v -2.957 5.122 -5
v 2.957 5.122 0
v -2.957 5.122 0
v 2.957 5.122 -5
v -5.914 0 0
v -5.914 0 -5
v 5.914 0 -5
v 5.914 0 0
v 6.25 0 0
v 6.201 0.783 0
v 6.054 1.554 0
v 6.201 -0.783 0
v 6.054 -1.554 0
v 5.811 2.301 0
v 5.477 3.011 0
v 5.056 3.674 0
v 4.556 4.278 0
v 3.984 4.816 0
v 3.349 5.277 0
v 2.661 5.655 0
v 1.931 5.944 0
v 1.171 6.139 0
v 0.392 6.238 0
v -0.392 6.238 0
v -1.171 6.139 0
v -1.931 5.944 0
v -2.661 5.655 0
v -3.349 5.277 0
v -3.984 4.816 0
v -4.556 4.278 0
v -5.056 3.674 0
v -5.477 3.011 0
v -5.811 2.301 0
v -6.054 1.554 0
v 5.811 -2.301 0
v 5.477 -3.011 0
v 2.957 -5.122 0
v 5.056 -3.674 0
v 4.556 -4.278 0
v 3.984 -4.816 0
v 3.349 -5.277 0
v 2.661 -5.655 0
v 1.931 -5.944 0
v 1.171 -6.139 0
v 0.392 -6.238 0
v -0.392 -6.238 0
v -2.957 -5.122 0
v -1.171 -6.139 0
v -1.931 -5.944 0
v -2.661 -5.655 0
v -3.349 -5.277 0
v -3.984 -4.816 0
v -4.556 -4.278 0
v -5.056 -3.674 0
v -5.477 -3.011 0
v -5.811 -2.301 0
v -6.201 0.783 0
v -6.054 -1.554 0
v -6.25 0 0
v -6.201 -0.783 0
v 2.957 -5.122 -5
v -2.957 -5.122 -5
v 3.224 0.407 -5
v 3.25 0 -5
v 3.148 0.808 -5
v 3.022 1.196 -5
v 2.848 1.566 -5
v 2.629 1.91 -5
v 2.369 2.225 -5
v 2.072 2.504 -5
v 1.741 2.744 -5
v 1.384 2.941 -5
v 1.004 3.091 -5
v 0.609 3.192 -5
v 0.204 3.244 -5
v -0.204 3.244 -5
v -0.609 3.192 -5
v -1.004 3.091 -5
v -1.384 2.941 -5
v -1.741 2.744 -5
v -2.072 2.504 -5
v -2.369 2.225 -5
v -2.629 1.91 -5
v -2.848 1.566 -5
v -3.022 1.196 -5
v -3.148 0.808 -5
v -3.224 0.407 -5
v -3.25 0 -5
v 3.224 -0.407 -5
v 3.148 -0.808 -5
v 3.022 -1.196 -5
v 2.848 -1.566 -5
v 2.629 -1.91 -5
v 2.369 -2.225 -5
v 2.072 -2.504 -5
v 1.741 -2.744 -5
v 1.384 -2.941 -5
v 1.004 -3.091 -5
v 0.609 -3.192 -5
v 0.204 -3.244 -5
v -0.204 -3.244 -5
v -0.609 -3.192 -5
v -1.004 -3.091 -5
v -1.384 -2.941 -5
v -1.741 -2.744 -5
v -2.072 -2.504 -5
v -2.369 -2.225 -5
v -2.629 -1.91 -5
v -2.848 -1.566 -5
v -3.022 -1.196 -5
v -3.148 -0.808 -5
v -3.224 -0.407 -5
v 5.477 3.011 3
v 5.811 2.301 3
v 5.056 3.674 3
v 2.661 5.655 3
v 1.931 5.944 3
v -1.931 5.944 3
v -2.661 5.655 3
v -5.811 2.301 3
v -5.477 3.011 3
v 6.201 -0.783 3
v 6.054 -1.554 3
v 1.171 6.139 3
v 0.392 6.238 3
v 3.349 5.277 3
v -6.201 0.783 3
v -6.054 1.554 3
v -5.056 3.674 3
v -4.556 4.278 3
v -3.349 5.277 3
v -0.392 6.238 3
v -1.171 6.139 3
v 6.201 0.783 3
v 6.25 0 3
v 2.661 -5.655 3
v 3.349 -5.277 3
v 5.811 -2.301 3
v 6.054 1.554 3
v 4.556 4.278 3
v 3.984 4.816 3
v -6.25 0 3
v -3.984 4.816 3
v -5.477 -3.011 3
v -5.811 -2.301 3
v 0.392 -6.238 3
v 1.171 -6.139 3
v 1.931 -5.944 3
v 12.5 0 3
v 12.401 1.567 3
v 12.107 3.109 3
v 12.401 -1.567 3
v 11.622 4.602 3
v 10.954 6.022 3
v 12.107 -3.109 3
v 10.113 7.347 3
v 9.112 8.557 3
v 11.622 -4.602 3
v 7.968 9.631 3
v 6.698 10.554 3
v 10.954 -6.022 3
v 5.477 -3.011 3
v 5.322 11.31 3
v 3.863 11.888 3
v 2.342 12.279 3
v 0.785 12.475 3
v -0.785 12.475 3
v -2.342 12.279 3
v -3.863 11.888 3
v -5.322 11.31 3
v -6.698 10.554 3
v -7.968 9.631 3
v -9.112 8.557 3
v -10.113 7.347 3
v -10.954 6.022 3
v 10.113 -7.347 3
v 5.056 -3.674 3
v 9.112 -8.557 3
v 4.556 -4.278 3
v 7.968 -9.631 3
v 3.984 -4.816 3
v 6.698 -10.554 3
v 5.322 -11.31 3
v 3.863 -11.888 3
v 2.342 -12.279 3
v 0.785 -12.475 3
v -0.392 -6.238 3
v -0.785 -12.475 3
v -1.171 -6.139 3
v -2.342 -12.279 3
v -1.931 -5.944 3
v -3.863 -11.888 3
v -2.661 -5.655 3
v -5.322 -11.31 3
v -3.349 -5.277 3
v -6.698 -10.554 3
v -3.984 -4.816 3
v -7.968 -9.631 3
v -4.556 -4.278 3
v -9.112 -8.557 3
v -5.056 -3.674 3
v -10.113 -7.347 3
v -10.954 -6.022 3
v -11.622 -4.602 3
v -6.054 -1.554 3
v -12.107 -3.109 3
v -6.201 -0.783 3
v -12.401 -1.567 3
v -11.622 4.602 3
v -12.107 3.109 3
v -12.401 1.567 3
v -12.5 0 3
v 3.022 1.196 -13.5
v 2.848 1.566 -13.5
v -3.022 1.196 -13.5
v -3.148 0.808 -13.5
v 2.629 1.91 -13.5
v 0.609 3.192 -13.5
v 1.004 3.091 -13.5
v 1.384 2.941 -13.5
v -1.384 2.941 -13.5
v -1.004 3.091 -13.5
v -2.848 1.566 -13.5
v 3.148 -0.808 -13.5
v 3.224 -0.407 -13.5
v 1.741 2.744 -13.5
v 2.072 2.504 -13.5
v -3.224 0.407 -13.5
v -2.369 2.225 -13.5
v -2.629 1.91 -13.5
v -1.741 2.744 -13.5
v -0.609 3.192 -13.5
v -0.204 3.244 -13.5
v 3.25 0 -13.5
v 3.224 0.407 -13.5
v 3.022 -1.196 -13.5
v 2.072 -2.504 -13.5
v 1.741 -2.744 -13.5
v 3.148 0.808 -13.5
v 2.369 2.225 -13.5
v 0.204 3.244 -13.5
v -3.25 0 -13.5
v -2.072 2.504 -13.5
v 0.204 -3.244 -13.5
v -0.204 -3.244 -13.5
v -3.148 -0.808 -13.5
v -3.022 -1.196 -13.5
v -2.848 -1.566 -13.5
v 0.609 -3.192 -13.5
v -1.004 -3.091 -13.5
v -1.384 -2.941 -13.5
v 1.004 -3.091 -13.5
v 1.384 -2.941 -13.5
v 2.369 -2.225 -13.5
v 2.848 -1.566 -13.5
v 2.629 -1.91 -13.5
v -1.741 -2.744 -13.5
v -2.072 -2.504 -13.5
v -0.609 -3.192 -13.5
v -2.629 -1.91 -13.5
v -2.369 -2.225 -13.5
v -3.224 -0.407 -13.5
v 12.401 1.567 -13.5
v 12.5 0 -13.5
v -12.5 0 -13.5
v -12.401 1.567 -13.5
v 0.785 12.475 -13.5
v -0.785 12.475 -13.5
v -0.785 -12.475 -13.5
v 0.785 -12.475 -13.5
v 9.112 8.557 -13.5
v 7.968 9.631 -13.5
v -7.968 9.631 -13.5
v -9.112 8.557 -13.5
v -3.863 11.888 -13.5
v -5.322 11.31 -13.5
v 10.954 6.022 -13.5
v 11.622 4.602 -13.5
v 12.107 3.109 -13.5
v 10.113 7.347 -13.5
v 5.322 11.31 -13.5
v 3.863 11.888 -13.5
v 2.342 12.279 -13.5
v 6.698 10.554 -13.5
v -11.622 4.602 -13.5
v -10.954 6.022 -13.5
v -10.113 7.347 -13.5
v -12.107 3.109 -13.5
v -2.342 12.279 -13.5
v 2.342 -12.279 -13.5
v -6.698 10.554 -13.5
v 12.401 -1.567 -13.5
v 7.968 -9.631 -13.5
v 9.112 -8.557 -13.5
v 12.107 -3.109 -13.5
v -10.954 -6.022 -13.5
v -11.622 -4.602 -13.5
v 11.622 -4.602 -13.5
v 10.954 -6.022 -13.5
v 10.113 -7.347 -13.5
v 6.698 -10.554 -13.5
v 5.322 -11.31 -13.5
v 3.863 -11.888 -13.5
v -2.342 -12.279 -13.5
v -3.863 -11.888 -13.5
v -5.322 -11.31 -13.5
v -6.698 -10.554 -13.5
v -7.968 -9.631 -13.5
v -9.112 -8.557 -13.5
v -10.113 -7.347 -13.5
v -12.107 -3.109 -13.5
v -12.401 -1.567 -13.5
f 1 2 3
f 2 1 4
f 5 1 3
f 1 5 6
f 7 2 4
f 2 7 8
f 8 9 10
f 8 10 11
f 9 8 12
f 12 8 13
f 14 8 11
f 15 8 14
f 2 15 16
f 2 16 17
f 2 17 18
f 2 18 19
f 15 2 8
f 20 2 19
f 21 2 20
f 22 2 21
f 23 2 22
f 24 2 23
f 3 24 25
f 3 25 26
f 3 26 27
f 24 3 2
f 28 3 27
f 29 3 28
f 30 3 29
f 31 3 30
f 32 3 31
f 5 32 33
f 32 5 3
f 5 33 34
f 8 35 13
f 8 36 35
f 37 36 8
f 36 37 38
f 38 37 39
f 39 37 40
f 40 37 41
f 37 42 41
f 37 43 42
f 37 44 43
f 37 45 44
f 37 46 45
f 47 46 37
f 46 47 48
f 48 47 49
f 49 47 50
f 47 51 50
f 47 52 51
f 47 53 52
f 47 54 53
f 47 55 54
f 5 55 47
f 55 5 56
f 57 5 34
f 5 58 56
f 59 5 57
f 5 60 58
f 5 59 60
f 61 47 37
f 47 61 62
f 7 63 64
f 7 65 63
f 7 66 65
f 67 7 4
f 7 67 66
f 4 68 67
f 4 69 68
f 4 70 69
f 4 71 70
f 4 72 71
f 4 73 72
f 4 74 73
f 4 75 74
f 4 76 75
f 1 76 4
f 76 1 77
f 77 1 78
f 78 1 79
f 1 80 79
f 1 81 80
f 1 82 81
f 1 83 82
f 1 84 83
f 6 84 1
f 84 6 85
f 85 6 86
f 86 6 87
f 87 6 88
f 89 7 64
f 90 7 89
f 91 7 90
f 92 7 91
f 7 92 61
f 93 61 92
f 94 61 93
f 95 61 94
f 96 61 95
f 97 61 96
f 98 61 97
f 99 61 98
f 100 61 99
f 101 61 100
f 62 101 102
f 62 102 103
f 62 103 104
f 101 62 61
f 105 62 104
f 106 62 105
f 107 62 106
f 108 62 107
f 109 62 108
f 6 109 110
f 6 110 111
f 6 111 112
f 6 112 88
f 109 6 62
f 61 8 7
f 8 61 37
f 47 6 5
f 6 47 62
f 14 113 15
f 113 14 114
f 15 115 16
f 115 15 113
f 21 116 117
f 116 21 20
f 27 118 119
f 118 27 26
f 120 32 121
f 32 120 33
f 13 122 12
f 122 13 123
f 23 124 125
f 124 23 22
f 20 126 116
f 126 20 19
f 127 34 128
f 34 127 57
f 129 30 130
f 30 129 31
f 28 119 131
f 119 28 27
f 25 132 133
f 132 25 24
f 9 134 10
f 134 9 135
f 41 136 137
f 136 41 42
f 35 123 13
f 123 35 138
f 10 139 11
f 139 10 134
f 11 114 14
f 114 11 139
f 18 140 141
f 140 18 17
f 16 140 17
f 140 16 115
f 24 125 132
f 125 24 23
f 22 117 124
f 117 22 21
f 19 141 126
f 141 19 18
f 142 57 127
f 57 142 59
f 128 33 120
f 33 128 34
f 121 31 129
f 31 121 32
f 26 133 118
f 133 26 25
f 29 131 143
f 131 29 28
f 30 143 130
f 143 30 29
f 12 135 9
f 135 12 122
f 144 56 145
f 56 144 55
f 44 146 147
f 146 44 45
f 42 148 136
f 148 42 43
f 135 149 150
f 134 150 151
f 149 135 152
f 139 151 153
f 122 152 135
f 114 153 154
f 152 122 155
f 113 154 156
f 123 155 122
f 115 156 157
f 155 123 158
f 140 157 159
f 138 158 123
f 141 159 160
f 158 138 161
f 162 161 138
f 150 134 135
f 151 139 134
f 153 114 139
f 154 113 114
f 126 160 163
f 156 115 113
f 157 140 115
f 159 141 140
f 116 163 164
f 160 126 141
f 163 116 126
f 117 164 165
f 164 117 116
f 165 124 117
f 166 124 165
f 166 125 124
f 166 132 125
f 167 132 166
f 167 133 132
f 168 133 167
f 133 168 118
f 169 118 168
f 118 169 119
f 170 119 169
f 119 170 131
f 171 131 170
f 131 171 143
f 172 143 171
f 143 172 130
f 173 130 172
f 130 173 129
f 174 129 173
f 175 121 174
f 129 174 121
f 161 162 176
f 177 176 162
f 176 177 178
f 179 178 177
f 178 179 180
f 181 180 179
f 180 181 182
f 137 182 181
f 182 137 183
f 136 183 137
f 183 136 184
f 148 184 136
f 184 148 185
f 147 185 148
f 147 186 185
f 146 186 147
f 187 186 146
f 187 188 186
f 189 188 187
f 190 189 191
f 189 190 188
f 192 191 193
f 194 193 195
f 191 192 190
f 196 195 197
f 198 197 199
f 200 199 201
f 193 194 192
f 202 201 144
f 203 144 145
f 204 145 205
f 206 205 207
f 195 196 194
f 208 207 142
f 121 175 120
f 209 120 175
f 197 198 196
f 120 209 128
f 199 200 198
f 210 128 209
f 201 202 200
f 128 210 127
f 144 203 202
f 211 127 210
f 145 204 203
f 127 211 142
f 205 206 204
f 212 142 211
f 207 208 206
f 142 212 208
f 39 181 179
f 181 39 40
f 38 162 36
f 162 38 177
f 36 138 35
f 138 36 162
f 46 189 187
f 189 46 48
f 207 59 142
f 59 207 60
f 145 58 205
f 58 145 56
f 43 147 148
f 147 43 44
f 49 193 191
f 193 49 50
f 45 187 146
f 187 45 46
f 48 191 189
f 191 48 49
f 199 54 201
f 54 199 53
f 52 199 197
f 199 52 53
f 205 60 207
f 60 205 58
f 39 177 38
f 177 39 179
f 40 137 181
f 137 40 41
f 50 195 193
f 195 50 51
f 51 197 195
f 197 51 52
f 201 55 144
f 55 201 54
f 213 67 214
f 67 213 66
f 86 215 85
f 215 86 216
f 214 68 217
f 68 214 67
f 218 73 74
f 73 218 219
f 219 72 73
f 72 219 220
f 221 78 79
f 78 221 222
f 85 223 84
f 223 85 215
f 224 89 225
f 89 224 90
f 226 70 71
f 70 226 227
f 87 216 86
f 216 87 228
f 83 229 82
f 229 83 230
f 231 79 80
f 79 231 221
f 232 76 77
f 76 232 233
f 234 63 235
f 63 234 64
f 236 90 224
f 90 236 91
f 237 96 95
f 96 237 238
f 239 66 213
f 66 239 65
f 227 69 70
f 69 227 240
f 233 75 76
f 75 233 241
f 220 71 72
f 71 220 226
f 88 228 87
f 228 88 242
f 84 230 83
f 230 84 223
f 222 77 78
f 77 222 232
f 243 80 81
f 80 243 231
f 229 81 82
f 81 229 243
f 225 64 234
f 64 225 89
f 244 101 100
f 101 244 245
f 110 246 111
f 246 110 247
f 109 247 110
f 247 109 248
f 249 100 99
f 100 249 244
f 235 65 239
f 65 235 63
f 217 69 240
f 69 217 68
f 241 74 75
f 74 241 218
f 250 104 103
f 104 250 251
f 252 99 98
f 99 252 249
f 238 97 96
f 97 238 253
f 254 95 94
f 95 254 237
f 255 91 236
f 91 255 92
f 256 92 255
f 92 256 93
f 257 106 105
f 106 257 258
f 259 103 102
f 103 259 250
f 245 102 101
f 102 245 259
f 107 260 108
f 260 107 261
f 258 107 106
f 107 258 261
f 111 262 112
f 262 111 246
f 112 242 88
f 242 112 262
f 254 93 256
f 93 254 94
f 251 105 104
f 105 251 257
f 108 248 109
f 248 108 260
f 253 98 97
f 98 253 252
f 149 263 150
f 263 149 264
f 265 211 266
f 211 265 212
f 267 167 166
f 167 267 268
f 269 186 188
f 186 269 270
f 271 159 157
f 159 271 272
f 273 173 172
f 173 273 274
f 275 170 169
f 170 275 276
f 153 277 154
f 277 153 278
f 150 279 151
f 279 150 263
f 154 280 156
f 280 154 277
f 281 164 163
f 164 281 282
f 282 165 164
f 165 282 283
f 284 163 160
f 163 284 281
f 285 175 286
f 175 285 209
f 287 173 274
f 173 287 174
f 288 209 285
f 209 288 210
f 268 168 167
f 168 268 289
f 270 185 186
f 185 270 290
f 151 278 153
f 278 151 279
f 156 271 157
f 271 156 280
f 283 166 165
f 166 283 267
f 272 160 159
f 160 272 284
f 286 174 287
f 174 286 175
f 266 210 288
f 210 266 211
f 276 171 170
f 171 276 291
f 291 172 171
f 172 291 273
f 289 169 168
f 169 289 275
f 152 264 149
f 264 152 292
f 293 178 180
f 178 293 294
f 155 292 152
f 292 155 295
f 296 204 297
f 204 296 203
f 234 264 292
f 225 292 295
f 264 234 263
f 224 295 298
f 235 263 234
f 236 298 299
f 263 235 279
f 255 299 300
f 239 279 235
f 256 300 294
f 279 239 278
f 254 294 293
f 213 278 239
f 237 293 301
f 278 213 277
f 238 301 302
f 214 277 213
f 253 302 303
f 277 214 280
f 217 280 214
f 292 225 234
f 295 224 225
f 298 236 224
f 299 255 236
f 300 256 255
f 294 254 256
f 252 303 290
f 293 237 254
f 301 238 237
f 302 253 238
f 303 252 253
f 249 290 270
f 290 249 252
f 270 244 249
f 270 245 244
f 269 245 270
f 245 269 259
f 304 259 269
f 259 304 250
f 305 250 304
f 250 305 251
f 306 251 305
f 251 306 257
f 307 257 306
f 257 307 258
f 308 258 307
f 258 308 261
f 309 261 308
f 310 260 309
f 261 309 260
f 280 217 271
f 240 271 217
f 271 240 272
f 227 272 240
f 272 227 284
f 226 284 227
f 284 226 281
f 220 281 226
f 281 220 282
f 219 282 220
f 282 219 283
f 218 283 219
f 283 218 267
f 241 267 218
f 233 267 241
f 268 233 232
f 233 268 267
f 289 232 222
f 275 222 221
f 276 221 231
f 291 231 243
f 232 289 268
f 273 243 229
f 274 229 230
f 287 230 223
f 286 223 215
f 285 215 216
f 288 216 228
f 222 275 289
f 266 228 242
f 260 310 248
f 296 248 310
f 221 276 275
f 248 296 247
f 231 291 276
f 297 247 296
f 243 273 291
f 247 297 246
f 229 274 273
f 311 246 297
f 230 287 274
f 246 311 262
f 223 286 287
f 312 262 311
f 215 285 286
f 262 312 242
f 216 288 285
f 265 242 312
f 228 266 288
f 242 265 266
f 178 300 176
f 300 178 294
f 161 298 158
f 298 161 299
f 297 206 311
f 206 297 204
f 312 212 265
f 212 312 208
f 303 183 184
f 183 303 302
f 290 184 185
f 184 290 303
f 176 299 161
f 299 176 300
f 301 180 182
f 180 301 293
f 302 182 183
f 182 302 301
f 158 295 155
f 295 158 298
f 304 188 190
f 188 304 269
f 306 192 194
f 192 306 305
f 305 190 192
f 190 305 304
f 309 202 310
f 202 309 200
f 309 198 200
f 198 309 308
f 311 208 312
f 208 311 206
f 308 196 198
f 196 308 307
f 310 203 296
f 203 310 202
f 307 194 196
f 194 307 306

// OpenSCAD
$fn = 50;


difference() {
	union() {
		translate(v = [0, 0, -13.5000000000]) {
			cylinder(h = 16.5000000000, r = 12.5000000000);
		}
	}
	union() {
		translate(v = [0, 0, 0]) {
			rotate(a = [0, 0, 0]) {
				difference() {
					union() {
						translate(v = [0, 0, -5]) {
							linear_extrude(height = 5) {
								polygon(points = [[5.9142500000, 0.0000000000], [2.9571250000, 5.1218907443], [-2.9571250000, 5.1218907443], [-5.9142500000, 0.0000000000], [-2.9571250000, -5.1218907443], [2.9571250000, -5.1218907443]]);
							}
						}
					}
					union();
				}
			}
		}
		#cylinder(h = 3, r = 6.2500000000);
		#translate(v = [0, 0, -100.0000000000]) {
			cylinder(h = 200, r = 3.2500000000);
		}
	}
}
